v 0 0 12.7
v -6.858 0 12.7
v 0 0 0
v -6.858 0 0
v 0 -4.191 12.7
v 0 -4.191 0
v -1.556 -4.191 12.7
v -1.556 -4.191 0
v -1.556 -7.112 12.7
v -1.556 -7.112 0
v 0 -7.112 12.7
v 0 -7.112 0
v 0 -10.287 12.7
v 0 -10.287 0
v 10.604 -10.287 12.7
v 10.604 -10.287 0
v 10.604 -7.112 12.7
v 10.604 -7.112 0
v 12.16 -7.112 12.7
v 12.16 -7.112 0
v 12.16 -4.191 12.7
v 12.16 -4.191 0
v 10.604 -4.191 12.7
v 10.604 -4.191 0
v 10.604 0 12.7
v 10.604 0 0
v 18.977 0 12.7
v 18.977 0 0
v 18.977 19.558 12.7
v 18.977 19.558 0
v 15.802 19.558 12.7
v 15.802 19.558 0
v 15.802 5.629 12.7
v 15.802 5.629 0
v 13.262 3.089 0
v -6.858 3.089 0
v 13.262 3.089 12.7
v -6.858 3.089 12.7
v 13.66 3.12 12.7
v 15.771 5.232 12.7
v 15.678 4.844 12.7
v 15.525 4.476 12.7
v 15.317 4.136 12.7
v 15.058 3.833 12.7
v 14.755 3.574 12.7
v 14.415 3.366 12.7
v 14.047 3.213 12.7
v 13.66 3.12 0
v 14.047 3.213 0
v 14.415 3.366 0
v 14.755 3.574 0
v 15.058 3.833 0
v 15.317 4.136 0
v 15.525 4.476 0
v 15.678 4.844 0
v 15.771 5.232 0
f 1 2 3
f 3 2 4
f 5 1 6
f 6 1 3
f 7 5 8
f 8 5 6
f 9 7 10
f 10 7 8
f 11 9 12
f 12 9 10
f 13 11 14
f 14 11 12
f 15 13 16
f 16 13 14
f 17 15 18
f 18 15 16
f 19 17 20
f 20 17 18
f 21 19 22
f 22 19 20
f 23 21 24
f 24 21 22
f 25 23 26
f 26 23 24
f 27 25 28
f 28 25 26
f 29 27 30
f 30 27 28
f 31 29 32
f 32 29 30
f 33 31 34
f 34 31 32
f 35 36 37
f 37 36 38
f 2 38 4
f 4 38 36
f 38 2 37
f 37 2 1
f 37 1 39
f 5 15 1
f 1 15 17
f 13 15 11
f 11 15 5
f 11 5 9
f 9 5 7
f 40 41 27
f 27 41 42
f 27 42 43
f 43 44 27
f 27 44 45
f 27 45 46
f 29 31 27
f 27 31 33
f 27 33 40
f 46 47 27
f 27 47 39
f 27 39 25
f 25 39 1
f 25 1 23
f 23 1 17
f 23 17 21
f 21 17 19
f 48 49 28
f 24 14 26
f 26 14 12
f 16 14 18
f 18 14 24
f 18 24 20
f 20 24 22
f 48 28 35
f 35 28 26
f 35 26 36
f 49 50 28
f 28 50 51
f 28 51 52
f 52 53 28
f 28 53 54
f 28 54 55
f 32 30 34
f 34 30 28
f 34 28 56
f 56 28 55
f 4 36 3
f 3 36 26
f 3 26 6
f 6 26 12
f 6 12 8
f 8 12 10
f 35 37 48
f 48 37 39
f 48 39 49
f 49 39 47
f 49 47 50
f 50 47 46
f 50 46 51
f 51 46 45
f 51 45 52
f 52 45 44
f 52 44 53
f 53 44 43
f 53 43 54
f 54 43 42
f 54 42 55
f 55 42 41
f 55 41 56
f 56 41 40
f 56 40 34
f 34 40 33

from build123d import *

# Parameters (mm, degrees)
BOSS_EXTRUDE1_DEPTH = 12.7
FILLET1_R           = 2.54


with BuildPart() as part:
    # Sketch1 → Boss-Extrude1 (new body)
    with BuildSketch(Plane.XY):
        Polygon((0, 0), (0, -4.191), (-1.55575, -4.191), (-1.55575, -7.112), (0, -7.112), (0, -10.287), (10.6045, -10.287), (10.6045, -7.112), (12.16025, -7.112), (12.16025, -4.191), (10.6045, -4.191), (10.6045, 0), (18.97725, 0), (18.97725, 19.558), (15.80225, 19.558), (15.80225, 3.089), (-6.858, 3.089), (-6.858, 0), align=None)
    extrude(amount=BOSS_EXTRUDE1_DEPTH)

    # Fillet1
    fillet1_edges = [part.edges().sort_by_distance(p)[0] for p in [
        (15.80225, 3.089, 6.35),
    ]]
    fillet(fillet1_edges, radius=FILLET1_R)


solid = part.part
